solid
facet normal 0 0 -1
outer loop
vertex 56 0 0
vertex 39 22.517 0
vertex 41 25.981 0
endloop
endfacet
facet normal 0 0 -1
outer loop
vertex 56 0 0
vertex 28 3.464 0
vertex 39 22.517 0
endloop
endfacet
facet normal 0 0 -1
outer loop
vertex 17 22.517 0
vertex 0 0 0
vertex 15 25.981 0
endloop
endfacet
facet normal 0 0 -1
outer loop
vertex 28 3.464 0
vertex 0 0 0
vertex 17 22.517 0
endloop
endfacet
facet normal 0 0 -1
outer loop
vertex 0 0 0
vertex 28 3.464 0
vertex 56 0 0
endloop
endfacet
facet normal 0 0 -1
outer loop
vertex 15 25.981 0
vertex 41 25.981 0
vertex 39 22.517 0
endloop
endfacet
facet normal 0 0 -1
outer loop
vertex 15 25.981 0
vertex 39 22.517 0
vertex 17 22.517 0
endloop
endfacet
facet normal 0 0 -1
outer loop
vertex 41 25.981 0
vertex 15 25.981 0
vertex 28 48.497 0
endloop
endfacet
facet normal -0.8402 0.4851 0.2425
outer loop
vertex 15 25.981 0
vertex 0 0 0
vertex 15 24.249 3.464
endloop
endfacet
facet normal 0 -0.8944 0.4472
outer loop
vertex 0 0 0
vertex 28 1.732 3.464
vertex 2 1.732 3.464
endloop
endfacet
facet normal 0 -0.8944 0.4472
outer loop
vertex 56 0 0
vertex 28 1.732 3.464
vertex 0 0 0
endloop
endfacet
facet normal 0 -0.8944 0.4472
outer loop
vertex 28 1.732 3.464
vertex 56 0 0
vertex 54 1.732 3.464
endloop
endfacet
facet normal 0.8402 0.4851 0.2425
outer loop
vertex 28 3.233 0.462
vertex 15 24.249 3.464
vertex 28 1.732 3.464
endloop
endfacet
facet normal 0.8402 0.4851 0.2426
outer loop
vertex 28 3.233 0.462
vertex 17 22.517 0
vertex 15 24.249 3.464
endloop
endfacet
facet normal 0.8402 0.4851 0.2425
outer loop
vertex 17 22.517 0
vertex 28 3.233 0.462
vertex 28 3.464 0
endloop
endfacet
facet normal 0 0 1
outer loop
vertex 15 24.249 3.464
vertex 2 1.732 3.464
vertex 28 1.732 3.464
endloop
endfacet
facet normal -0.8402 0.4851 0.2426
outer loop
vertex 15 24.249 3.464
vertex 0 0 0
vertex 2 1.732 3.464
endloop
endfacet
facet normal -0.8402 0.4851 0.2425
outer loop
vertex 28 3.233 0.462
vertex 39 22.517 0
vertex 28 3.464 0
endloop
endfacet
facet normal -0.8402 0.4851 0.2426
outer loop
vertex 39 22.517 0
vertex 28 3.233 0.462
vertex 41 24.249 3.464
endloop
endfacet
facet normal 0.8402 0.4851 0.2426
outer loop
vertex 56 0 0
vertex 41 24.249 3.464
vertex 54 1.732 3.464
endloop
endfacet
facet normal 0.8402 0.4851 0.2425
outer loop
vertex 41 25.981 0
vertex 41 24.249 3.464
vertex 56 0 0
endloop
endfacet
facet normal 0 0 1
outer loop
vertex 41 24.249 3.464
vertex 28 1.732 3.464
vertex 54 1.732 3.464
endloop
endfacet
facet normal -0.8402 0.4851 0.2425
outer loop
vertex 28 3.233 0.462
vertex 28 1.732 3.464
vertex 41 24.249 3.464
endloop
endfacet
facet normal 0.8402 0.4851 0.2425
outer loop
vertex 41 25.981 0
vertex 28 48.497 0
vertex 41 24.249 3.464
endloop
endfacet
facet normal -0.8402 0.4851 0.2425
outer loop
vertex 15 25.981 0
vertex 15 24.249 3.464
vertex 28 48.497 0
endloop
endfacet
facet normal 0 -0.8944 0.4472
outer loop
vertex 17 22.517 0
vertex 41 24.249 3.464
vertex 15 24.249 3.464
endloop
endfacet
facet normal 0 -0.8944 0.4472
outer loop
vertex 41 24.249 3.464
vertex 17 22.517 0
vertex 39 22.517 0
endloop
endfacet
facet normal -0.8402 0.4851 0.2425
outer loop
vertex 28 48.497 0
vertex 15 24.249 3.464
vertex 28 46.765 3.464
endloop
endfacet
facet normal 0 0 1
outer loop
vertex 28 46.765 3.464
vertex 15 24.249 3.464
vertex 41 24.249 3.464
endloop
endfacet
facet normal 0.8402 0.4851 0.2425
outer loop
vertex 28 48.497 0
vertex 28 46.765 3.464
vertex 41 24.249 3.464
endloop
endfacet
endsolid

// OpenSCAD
l=30;                 // length of one equilateral triangle
x=2;                  // offset of top triangle from base triangle
                      // parameter validation
assert(l > 0);
assert(x > 0);
assert(x <= l/2);

h=x*sqrt(3);          // calculated height to maintain 60 degree slope
y=l/2*sqrt(3);        // calculated long leg

TriPoints = [
  [  0,   0,    0 ],  // 0
  [  l,   0,    0 ],  // 1
  [l/2,   y,    0 ],  // 2
  [  x,   h/2,  h ],  // 3
  [l-x,   h/2,  h ],  // 4
  [l/2, y-h/2,  h ]]; // 5
  
TriFaces = [
  [ 0, 1, 2 ],        // bottom
  [ 3, 4, 1, 0 ],     // front
  [ 5, 4, 3 ],        // top
  [ 4, 5, 2, 1 ],     // right
  [ 5, 3, 0, 2 ] ];   // left
  
translate([    0,  0,  0]) polyhedron( TriPoints, TriFaces );
translate([l-2*x,  0,  0]) polyhedron( TriPoints, TriFaces );
translate([l/2-x,y-h,  0]) polyhedron( TriPoints, TriFaces );
